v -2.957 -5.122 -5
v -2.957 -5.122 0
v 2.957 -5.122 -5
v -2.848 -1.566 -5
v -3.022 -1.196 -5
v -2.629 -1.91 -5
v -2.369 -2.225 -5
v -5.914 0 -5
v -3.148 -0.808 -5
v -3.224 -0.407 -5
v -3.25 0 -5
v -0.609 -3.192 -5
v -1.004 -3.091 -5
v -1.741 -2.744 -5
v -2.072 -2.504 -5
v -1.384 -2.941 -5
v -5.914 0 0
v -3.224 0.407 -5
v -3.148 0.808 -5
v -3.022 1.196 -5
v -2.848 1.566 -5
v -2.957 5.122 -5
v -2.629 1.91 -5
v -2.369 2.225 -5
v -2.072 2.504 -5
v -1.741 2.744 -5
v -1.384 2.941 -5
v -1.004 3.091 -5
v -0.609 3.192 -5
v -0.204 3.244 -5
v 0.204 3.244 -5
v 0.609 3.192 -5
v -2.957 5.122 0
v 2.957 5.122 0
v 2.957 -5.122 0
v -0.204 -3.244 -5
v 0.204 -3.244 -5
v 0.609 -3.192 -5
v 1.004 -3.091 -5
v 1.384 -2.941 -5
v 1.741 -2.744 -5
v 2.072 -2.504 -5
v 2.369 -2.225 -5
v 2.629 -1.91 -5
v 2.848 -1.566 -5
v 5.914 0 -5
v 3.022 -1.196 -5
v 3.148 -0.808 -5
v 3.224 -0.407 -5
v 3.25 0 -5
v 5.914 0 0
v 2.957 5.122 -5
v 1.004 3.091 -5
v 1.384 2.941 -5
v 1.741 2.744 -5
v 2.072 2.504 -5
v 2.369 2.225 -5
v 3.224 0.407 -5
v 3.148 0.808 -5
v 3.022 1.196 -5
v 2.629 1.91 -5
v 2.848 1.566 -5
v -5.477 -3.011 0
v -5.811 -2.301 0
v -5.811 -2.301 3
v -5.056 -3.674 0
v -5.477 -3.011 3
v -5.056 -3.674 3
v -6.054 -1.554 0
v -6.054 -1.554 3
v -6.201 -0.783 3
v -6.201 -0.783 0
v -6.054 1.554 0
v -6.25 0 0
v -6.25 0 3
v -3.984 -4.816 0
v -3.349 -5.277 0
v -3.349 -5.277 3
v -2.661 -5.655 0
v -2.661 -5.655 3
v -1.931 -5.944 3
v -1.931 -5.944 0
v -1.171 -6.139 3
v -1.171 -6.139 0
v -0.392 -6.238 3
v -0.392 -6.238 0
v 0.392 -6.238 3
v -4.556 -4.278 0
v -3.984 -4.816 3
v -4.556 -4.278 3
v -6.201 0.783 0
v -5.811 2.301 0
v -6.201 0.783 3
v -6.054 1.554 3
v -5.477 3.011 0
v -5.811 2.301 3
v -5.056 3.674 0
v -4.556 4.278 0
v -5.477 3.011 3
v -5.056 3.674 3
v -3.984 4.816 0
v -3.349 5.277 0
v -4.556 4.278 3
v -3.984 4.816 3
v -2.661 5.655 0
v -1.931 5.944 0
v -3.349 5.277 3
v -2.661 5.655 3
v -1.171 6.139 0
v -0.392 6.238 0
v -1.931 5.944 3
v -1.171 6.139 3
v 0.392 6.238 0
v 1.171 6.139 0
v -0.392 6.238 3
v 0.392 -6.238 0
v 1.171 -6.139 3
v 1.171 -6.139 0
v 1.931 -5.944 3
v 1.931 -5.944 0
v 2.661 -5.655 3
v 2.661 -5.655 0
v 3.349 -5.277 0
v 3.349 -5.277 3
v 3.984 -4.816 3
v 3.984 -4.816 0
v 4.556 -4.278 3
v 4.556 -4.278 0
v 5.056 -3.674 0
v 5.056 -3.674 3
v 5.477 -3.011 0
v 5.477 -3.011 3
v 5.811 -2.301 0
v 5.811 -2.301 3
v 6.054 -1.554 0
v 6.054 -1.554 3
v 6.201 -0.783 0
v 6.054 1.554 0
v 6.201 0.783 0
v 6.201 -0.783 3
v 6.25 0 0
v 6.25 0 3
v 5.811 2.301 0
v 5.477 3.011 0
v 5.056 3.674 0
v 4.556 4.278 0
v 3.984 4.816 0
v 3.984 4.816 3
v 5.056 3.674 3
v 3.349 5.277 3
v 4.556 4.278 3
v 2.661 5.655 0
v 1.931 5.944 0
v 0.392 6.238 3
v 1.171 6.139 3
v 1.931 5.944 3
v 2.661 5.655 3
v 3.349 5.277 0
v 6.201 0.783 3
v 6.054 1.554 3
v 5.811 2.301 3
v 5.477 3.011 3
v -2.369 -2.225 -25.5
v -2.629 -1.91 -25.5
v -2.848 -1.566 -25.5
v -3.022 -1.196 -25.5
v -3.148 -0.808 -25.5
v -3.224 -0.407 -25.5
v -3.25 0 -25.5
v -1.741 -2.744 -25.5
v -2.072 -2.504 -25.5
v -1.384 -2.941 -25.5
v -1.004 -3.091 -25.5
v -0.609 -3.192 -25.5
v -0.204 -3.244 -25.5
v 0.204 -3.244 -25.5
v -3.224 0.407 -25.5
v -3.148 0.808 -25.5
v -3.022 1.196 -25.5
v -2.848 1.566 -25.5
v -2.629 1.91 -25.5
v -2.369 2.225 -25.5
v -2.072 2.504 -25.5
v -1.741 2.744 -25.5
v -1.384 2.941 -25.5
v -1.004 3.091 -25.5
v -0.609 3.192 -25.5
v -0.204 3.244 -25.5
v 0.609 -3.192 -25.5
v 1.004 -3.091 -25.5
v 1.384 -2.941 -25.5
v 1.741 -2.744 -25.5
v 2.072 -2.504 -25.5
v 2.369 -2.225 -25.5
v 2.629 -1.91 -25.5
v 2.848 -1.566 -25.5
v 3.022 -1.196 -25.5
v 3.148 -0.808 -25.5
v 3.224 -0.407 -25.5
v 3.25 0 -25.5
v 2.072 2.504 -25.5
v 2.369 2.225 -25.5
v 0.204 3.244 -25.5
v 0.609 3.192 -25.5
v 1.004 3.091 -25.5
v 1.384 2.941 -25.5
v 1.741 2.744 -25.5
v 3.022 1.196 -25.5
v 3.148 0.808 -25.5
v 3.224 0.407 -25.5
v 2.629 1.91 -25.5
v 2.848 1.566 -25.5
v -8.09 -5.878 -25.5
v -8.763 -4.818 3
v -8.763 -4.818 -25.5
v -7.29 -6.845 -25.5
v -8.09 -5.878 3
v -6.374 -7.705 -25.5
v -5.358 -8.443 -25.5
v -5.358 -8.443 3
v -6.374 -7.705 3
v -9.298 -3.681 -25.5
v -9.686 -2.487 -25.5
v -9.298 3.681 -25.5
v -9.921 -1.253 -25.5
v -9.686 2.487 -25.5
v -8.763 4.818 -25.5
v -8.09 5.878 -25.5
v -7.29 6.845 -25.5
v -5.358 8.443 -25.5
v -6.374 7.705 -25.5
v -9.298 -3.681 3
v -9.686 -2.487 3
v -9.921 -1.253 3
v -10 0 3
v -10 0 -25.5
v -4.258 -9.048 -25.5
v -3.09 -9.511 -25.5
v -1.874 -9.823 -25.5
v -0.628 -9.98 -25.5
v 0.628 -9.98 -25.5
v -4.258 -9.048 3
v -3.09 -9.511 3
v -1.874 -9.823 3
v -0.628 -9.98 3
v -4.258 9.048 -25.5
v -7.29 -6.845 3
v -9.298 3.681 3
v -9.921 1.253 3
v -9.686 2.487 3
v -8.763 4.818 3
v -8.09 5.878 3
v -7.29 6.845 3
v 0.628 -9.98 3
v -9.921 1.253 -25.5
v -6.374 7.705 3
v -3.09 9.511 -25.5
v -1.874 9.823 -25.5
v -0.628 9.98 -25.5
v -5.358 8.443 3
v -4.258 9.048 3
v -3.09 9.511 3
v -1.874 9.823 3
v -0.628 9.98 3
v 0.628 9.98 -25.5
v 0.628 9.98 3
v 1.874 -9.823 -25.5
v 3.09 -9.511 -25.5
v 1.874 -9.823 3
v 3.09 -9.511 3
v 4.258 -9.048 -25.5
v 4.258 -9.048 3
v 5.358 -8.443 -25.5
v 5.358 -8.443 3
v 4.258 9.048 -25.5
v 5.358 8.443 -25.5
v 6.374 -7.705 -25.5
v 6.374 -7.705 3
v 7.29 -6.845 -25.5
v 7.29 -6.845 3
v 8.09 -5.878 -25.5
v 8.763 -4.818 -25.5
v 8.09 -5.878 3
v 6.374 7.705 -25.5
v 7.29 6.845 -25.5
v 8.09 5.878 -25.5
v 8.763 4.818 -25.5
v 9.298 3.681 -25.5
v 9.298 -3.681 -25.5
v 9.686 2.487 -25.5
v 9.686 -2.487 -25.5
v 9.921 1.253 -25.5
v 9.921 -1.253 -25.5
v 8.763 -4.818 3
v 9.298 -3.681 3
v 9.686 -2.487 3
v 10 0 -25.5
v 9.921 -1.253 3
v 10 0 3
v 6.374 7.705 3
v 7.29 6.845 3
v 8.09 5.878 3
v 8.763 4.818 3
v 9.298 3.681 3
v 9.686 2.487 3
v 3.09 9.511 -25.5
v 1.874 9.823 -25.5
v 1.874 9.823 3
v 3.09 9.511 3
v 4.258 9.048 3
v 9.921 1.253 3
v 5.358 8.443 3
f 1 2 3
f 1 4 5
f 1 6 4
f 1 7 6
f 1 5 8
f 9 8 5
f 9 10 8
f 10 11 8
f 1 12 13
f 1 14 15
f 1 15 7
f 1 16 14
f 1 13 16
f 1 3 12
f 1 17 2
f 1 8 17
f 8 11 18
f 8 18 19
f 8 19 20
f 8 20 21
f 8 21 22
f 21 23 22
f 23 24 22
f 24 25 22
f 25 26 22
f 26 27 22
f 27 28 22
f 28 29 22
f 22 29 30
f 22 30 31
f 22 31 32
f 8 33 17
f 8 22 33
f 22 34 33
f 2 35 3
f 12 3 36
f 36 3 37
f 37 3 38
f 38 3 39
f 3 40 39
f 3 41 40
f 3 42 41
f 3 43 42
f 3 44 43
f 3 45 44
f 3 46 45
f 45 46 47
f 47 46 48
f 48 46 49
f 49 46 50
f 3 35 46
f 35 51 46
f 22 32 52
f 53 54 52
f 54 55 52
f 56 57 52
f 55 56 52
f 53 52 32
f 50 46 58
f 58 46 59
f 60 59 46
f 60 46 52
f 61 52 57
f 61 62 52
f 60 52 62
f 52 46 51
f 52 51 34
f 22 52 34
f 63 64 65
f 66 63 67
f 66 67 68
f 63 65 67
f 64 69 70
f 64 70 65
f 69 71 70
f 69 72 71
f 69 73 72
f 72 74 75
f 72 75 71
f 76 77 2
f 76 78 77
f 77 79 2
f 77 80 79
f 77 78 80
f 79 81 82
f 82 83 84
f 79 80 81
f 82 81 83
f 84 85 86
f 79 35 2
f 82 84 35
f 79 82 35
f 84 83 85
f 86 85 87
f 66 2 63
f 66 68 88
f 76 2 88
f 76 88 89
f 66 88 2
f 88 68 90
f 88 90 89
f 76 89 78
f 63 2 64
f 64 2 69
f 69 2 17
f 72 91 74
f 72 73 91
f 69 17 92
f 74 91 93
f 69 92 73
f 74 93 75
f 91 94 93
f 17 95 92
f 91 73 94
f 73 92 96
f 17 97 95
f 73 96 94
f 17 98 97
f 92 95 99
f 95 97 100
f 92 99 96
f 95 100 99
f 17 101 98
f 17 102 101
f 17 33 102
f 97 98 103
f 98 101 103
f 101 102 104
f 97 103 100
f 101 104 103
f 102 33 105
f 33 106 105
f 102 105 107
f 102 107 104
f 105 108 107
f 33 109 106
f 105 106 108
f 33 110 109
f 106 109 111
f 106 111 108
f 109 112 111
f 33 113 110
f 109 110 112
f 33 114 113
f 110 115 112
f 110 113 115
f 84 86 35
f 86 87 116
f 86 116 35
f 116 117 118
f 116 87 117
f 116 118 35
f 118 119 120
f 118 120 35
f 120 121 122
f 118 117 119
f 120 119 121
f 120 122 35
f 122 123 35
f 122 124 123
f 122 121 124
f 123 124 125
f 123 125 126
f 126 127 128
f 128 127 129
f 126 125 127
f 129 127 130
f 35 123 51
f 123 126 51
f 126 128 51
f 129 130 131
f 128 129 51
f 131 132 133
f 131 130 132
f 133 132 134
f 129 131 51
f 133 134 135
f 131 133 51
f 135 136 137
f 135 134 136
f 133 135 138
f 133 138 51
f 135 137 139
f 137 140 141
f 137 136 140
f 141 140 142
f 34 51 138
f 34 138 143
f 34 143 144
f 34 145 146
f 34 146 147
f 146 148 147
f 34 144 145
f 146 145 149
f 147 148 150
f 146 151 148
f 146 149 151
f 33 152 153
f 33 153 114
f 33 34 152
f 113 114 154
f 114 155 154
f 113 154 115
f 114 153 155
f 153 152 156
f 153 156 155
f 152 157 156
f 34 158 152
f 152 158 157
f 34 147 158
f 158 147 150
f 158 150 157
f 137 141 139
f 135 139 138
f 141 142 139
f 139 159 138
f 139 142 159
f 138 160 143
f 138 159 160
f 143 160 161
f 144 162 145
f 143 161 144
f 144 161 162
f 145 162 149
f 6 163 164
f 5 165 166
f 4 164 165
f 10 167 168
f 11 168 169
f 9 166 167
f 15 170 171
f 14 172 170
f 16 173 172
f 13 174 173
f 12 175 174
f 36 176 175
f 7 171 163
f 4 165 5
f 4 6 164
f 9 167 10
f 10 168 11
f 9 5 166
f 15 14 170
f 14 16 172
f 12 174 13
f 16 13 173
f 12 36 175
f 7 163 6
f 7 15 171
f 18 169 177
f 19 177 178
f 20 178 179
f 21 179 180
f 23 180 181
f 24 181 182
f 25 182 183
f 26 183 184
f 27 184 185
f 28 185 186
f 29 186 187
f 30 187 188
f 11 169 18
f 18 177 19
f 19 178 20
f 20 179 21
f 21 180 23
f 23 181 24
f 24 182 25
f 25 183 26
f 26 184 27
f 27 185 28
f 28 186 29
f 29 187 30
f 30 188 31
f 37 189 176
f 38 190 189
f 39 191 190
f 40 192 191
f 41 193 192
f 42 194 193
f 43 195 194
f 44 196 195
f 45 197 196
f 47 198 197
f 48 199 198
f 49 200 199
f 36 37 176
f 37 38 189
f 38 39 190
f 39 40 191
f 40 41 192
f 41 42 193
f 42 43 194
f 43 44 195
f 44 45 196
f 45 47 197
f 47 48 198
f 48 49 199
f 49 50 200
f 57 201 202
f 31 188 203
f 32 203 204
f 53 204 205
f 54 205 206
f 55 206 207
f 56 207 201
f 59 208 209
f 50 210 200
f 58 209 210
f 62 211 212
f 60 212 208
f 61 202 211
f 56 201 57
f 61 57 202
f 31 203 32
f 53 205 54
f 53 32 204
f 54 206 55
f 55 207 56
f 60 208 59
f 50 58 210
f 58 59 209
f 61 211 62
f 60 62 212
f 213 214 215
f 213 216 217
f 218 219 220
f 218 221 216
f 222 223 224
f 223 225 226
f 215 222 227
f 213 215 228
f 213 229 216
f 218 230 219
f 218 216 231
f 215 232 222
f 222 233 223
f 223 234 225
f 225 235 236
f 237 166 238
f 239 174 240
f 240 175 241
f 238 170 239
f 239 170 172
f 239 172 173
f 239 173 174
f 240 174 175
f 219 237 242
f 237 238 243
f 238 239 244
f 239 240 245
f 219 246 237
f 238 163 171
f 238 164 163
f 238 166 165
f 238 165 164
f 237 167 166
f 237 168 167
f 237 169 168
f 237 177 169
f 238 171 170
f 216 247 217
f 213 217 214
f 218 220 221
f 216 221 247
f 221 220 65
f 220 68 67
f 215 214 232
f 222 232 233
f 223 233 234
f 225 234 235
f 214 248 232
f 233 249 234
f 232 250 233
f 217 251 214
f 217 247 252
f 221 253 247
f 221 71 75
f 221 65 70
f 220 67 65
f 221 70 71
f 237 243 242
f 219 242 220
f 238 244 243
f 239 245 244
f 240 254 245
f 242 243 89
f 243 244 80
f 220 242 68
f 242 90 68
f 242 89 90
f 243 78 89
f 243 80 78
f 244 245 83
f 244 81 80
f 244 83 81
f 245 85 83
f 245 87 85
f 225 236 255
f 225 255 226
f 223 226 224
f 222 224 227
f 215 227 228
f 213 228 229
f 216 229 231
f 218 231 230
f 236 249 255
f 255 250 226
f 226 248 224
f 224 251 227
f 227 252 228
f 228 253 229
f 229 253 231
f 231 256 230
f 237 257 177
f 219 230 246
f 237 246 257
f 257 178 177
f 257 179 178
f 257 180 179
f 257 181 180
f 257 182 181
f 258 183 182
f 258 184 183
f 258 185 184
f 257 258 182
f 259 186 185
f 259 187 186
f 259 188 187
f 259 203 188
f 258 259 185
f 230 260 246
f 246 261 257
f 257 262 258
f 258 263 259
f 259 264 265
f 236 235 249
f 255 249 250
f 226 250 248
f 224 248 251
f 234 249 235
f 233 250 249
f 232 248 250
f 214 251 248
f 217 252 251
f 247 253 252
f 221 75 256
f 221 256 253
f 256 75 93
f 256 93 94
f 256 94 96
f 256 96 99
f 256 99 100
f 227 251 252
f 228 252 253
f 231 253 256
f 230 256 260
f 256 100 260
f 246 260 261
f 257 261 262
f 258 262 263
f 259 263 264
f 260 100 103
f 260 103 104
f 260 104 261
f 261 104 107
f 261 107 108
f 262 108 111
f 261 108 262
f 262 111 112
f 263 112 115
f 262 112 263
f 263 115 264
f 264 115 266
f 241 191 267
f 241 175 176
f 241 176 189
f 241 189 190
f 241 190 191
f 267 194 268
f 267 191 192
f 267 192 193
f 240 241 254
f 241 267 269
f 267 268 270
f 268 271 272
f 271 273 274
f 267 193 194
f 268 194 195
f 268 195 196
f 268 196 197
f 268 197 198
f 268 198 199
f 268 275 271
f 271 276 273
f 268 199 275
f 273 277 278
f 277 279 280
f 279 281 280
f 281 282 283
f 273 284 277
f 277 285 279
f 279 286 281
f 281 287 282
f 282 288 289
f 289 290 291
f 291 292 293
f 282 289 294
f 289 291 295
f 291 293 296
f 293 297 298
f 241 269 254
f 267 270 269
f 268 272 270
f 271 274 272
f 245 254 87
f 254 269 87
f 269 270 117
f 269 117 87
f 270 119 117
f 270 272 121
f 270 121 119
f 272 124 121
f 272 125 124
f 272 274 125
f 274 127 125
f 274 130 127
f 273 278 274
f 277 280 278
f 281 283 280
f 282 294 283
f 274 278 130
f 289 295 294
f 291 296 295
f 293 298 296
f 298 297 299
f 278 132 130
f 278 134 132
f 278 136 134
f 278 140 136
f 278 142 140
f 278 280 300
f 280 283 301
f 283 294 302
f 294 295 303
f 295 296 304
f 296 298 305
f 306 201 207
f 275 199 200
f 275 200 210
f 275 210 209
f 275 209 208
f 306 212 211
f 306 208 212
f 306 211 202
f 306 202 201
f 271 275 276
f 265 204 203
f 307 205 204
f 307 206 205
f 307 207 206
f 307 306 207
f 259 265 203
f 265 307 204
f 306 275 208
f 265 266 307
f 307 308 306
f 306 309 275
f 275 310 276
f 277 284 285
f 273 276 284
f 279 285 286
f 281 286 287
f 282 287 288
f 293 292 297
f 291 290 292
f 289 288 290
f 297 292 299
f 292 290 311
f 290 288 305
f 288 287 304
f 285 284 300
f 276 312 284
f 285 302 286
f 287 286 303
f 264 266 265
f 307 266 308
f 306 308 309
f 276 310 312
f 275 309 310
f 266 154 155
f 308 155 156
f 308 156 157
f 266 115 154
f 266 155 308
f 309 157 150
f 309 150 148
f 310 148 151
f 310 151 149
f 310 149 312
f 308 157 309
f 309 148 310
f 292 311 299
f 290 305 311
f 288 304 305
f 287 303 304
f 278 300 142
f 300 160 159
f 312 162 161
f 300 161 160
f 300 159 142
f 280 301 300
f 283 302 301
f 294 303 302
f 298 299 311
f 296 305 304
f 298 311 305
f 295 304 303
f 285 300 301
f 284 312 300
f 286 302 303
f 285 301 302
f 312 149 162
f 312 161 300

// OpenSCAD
$fn = 50;

difference() {
	union() {
		translate(v = [0, 0, -25.5]) {
			cylinder(h = 28.5, r = 10.0);
		}
	}
	union() {
		translate(v = [0, 0, 0]) {
			rotate(a = [0, 0, 0]) {
				difference() {
					union() {
						translate(v = [0, 0, -5]) {
							linear_extrude(height = 5) {
								polygon(points = [[5.914249999999999, 0.0], [2.957125, 5.1218907443321156], [-2.9571249999999982, 5.1218907443321156], [-5.914249999999999, 7.242867331857232e-16], [-2.9571250000000022, -5.121890744332115], [2.9571249999999956, -5.121890744332118]]);
							}
						}
					}
					union();
				}
			}
		}
		#cylinder(h = 3, r = 6.25);
		#translate(v = [0, 0, -100.0]) {
			cylinder(h = 200, r = 3.25);
		}
	}
}
